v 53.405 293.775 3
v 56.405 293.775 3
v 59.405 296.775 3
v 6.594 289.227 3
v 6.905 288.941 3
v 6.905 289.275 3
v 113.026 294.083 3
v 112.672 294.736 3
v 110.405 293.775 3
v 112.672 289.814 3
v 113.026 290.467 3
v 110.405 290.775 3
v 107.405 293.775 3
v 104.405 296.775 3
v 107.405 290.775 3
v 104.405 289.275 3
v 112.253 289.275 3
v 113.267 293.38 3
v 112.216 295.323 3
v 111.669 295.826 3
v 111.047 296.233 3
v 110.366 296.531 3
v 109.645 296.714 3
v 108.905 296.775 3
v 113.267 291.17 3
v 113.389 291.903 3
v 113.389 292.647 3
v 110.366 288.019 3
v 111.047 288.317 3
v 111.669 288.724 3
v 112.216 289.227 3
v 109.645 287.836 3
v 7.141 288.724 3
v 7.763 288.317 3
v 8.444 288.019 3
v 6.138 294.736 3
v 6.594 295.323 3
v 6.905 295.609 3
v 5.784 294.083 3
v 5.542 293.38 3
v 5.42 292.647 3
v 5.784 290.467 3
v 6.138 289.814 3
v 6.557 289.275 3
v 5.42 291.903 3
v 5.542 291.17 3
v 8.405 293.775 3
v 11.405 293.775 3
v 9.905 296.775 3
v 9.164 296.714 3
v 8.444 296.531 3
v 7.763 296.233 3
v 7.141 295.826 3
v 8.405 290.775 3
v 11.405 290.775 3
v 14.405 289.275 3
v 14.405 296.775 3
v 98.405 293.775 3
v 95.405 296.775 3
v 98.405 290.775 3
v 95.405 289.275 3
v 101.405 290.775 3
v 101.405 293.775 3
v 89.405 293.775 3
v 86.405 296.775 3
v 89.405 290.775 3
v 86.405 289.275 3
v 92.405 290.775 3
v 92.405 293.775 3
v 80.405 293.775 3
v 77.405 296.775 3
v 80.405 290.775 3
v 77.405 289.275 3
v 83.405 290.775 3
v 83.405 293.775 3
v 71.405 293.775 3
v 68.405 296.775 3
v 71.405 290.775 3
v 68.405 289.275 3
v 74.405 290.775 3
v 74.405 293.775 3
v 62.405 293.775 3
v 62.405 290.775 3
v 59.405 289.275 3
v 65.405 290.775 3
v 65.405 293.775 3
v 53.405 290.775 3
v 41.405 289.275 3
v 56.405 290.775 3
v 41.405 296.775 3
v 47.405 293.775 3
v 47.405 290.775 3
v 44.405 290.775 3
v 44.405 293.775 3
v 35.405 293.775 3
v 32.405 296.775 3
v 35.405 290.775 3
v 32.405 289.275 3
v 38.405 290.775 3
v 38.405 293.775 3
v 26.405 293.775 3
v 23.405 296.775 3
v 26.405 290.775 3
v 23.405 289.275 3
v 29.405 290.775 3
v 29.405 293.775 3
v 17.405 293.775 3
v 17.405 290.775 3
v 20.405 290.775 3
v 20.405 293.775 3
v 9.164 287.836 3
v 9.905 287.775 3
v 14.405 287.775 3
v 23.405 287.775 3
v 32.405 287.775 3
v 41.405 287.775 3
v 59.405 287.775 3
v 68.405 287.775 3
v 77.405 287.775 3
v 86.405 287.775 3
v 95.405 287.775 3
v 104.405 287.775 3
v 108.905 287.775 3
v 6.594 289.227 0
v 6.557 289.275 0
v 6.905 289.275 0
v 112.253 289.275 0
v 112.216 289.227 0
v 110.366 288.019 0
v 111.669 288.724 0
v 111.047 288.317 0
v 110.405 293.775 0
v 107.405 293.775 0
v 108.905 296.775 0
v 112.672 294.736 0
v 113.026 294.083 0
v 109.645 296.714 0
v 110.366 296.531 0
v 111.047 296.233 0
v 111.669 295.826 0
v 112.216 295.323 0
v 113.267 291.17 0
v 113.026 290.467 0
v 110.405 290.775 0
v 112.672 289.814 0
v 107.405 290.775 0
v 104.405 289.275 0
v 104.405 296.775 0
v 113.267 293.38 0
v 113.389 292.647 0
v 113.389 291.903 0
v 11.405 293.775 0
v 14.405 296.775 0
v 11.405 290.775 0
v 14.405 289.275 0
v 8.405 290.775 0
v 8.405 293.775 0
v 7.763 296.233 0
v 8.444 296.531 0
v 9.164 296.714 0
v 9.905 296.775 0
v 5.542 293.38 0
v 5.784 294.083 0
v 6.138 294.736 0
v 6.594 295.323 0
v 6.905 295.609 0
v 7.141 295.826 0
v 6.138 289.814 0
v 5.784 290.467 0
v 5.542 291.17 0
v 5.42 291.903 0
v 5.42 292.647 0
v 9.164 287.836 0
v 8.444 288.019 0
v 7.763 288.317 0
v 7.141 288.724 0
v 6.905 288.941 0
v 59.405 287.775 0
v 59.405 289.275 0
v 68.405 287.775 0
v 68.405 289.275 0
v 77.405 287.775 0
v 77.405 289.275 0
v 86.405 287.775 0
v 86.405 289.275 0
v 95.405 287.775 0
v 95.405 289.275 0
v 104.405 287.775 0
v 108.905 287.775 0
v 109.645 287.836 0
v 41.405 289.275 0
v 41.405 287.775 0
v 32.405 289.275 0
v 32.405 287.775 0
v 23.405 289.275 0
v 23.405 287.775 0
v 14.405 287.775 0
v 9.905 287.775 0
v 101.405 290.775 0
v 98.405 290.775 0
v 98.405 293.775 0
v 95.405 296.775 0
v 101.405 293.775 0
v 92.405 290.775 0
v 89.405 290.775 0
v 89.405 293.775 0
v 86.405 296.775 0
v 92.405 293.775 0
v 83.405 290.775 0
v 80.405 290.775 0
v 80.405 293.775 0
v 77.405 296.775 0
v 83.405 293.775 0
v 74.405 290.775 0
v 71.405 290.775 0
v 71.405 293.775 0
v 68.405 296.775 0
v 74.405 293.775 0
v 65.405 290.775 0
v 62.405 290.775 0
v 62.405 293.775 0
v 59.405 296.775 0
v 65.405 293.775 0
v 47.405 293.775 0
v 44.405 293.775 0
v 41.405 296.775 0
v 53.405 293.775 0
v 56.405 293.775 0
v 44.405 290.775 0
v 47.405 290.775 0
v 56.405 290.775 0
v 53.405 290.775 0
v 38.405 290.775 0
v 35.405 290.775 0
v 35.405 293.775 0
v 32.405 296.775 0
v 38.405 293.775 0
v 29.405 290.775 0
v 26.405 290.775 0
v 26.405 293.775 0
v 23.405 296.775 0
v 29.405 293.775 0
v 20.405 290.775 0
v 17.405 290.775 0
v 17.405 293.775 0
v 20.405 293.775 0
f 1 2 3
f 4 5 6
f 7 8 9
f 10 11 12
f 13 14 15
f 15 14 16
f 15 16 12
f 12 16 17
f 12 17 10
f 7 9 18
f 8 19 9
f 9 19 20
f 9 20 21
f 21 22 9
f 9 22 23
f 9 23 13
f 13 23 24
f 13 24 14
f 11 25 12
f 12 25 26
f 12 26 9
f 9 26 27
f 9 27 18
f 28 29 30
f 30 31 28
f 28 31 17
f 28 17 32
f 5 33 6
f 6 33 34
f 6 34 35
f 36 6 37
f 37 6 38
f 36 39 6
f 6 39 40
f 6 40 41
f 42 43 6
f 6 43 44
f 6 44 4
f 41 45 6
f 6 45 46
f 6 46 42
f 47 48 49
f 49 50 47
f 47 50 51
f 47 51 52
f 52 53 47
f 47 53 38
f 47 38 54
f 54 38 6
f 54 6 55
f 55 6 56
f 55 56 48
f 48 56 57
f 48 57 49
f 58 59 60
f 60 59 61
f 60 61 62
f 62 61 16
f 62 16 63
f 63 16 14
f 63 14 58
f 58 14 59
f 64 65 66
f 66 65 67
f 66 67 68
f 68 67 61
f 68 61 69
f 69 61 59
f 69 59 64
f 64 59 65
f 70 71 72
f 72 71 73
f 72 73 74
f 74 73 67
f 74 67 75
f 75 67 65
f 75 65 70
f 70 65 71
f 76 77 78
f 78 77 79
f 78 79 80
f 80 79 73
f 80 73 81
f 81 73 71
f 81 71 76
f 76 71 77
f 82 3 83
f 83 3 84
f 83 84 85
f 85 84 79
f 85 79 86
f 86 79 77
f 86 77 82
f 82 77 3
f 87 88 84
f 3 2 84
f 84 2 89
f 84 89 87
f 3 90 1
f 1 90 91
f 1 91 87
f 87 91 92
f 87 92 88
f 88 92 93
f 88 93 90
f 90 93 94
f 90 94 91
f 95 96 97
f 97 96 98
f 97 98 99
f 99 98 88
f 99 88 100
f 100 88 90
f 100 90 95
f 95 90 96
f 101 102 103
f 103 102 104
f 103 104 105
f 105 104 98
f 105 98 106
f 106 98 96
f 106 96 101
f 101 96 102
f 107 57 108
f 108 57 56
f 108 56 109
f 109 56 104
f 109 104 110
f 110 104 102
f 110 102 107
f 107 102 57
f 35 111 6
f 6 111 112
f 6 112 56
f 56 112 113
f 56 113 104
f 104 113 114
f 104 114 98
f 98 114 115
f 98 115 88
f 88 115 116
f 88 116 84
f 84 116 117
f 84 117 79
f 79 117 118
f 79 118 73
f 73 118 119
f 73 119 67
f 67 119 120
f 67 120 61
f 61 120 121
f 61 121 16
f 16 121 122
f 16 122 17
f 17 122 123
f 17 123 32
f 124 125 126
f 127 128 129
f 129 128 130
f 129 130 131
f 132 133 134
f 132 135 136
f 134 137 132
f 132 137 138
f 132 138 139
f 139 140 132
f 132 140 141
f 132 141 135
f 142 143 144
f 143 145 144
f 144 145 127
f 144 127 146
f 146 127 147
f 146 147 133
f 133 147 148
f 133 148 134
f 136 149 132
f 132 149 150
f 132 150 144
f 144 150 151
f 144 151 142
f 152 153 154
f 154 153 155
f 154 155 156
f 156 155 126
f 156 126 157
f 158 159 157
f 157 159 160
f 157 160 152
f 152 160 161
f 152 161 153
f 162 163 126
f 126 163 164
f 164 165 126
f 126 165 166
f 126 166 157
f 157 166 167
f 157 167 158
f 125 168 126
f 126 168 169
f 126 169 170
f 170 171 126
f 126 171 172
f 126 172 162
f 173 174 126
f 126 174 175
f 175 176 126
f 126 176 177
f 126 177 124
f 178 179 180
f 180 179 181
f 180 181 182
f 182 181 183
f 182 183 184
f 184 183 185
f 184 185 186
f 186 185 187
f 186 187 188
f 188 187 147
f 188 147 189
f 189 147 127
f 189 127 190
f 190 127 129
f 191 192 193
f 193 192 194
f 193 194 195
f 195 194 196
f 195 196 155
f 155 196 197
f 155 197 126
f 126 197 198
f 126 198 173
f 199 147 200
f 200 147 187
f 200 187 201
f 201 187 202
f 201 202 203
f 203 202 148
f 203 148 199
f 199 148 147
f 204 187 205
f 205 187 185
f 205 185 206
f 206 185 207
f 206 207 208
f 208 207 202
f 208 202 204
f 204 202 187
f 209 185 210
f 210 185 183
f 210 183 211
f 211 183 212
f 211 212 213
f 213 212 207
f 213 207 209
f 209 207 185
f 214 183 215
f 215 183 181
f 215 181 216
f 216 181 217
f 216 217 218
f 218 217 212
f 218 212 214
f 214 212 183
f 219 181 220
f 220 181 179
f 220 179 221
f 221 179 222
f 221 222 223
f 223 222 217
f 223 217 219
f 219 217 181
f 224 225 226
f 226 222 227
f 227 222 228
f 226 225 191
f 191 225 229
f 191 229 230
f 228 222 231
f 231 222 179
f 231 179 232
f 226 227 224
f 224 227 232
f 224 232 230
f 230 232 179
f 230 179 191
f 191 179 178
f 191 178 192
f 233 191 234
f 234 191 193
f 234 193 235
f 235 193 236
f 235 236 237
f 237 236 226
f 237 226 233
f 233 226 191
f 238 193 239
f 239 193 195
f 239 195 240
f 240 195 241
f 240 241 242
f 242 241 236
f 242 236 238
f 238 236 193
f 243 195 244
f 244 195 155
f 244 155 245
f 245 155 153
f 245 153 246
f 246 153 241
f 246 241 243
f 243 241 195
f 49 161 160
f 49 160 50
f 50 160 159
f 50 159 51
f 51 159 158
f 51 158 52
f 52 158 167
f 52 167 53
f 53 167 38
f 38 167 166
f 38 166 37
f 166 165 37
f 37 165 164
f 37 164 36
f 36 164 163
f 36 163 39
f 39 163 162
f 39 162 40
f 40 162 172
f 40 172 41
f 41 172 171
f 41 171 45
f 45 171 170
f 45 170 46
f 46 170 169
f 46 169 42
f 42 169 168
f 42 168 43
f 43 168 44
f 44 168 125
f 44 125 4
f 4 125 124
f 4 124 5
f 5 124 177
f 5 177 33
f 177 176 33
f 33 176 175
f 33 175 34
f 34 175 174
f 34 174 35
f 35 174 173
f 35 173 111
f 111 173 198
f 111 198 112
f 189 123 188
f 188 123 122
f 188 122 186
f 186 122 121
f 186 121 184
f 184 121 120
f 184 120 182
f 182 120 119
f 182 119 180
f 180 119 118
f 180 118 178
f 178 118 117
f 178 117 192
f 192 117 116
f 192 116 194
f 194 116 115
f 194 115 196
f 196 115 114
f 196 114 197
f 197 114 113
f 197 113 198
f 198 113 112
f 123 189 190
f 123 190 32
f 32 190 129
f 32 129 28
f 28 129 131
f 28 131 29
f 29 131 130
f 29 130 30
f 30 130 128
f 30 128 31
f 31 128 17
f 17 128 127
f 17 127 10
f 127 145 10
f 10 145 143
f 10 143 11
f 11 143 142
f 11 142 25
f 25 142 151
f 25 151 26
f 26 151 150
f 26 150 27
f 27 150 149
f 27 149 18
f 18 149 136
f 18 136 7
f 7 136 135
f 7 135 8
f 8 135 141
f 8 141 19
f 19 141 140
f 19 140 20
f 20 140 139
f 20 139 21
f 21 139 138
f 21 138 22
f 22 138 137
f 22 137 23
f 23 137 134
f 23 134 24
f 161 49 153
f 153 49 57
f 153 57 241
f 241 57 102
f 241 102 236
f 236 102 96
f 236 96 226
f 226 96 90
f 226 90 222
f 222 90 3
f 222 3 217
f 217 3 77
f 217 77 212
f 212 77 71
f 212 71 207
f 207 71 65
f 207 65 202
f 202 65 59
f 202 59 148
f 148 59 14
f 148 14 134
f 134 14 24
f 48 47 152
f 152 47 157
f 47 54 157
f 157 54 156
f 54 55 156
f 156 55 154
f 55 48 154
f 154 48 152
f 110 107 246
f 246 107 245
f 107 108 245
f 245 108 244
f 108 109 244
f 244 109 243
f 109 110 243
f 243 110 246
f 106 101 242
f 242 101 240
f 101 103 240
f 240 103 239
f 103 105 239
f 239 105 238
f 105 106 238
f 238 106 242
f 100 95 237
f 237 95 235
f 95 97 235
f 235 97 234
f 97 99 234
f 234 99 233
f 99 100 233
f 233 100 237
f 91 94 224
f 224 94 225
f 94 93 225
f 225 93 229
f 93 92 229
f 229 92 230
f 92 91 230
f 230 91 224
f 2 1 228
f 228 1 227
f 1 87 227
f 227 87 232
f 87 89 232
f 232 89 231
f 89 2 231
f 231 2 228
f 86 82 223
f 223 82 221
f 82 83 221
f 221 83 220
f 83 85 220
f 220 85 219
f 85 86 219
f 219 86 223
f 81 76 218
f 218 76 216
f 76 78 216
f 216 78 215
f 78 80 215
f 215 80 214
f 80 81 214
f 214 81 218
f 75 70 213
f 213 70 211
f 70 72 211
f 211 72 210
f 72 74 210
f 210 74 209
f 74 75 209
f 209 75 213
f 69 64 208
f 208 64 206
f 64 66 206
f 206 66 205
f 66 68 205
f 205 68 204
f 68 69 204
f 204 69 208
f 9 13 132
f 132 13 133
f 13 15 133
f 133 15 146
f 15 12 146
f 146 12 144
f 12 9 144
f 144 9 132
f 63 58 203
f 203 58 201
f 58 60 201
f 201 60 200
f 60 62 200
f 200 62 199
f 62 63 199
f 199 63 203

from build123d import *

# Parameters (mm, degrees)
MODEL_W                 = 3
MODEL_H                 = 3
SALIENTE_EXTRUIR1_DEPTH = 3


with BuildPart() as part:
    # Model → Saliente-Extruir1 (new body)
    with BuildSketch(Plane.XY):
        with BuildLine():
            Line((9.904781567, 296.774995526), (108.904781567, 296.774995526))
            ThreePointArc((108.904781567, 296.774995526), (113.404781567, 292.274995526), (108.904781567, 287.774995526))
            Line((108.904781567, 287.774995526), (9.904781567, 287.774995526))
            ThreePointArc((9.904781567, 287.774995526), (5.404781567, 292.274995526), (9.904781567, 296.774995526))
        make_face()
        with Locations((9.904781567, 292.274995526)):
            Rectangle(MODEL_W, MODEL_H, mode=Mode.SUBTRACT)
        with Locations((18.904781567, 292.274995526)):
            Rectangle(MODEL_W, MODEL_H, mode=Mode.SUBTRACT)
        with Locations((27.904781567, 292.274995526)):
            Rectangle(MODEL_W, MODEL_H, mode=Mode.SUBTRACT)
        with Locations((36.904781567, 292.274995526)):
            Rectangle(MODEL_W, MODEL_H, mode=Mode.SUBTRACT)
        with Locations((45.904781567, 292.274995526)):
            Rectangle(MODEL_W, MODEL_H, mode=Mode.SUBTRACT)
        with Locations((54.904781567, 292.274995526)):
            Rectangle(MODEL_W, MODEL_H, mode=Mode.SUBTRACT)
        with Locations((63.904781567, 292.274995526)):
            Rectangle(MODEL_W, MODEL_H, mode=Mode.SUBTRACT)
        with Locations((72.904781567, 292.274995526)):
            Rectangle(MODEL_W, MODEL_H, mode=Mode.SUBTRACT)
        with Locations((81.904781567, 292.274995526)):
            Rectangle(MODEL_W, MODEL_H, mode=Mode.SUBTRACT)
        with Locations((90.904781567, 292.274995526)):
            Rectangle(MODEL_W, MODEL_H, mode=Mode.SUBTRACT)
        with Locations((108.904781567, 292.274995526)):
            Rectangle(MODEL_W, MODEL_H, mode=Mode.SUBTRACT)
        with Locations((99.904781567, 292.274995526)):
            Rectangle(MODEL_W, MODEL_H, mode=Mode.SUBTRACT)
    extrude(amount=SALIENTE_EXTRUIR1_DEPTH)


solid = part.part
